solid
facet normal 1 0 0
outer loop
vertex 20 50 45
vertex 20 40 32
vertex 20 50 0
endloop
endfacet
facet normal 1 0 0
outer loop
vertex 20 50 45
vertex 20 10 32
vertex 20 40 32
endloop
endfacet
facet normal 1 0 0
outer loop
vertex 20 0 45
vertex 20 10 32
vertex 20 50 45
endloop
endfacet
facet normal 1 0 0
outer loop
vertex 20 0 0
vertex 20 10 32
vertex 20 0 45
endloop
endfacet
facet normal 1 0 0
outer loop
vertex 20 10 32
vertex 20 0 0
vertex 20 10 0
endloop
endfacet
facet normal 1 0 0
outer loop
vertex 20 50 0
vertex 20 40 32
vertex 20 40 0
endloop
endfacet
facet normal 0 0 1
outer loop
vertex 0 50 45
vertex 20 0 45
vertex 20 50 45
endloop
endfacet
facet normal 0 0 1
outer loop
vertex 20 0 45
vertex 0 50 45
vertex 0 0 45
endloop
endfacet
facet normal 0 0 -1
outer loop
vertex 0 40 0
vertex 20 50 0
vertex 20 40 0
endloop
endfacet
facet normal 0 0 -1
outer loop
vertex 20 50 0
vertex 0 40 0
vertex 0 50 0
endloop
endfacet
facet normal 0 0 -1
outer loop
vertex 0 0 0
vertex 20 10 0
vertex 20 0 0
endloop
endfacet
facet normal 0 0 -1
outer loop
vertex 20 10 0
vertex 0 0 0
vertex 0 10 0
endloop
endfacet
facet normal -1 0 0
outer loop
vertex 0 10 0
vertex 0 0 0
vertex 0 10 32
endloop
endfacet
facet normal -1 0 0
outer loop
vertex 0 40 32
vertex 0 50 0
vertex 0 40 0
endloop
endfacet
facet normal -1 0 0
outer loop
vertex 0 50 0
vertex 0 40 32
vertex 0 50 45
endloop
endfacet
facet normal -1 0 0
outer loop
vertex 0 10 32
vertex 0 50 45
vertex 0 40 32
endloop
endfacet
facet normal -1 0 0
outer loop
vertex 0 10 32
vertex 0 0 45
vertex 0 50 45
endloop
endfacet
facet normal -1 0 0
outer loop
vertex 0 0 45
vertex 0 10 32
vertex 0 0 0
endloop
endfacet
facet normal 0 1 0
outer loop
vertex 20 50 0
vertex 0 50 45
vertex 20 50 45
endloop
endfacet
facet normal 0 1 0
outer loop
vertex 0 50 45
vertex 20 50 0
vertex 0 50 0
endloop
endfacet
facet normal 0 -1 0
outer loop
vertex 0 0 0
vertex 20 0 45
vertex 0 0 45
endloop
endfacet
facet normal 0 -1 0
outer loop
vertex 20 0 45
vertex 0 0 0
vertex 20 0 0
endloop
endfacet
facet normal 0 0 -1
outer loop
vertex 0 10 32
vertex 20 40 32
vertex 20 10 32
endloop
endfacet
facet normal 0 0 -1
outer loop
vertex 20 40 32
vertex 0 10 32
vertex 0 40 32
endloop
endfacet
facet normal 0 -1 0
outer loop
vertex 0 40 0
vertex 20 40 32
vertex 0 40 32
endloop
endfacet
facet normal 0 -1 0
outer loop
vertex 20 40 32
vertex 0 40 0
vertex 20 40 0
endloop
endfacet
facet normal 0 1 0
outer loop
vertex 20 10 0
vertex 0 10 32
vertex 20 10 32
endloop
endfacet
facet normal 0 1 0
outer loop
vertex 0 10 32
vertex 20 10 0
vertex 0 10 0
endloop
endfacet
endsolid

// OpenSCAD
difference() {
    cube([20,50,45]);
translate([-1, 10, 0])
  cube([25, 30, 32]);
}
